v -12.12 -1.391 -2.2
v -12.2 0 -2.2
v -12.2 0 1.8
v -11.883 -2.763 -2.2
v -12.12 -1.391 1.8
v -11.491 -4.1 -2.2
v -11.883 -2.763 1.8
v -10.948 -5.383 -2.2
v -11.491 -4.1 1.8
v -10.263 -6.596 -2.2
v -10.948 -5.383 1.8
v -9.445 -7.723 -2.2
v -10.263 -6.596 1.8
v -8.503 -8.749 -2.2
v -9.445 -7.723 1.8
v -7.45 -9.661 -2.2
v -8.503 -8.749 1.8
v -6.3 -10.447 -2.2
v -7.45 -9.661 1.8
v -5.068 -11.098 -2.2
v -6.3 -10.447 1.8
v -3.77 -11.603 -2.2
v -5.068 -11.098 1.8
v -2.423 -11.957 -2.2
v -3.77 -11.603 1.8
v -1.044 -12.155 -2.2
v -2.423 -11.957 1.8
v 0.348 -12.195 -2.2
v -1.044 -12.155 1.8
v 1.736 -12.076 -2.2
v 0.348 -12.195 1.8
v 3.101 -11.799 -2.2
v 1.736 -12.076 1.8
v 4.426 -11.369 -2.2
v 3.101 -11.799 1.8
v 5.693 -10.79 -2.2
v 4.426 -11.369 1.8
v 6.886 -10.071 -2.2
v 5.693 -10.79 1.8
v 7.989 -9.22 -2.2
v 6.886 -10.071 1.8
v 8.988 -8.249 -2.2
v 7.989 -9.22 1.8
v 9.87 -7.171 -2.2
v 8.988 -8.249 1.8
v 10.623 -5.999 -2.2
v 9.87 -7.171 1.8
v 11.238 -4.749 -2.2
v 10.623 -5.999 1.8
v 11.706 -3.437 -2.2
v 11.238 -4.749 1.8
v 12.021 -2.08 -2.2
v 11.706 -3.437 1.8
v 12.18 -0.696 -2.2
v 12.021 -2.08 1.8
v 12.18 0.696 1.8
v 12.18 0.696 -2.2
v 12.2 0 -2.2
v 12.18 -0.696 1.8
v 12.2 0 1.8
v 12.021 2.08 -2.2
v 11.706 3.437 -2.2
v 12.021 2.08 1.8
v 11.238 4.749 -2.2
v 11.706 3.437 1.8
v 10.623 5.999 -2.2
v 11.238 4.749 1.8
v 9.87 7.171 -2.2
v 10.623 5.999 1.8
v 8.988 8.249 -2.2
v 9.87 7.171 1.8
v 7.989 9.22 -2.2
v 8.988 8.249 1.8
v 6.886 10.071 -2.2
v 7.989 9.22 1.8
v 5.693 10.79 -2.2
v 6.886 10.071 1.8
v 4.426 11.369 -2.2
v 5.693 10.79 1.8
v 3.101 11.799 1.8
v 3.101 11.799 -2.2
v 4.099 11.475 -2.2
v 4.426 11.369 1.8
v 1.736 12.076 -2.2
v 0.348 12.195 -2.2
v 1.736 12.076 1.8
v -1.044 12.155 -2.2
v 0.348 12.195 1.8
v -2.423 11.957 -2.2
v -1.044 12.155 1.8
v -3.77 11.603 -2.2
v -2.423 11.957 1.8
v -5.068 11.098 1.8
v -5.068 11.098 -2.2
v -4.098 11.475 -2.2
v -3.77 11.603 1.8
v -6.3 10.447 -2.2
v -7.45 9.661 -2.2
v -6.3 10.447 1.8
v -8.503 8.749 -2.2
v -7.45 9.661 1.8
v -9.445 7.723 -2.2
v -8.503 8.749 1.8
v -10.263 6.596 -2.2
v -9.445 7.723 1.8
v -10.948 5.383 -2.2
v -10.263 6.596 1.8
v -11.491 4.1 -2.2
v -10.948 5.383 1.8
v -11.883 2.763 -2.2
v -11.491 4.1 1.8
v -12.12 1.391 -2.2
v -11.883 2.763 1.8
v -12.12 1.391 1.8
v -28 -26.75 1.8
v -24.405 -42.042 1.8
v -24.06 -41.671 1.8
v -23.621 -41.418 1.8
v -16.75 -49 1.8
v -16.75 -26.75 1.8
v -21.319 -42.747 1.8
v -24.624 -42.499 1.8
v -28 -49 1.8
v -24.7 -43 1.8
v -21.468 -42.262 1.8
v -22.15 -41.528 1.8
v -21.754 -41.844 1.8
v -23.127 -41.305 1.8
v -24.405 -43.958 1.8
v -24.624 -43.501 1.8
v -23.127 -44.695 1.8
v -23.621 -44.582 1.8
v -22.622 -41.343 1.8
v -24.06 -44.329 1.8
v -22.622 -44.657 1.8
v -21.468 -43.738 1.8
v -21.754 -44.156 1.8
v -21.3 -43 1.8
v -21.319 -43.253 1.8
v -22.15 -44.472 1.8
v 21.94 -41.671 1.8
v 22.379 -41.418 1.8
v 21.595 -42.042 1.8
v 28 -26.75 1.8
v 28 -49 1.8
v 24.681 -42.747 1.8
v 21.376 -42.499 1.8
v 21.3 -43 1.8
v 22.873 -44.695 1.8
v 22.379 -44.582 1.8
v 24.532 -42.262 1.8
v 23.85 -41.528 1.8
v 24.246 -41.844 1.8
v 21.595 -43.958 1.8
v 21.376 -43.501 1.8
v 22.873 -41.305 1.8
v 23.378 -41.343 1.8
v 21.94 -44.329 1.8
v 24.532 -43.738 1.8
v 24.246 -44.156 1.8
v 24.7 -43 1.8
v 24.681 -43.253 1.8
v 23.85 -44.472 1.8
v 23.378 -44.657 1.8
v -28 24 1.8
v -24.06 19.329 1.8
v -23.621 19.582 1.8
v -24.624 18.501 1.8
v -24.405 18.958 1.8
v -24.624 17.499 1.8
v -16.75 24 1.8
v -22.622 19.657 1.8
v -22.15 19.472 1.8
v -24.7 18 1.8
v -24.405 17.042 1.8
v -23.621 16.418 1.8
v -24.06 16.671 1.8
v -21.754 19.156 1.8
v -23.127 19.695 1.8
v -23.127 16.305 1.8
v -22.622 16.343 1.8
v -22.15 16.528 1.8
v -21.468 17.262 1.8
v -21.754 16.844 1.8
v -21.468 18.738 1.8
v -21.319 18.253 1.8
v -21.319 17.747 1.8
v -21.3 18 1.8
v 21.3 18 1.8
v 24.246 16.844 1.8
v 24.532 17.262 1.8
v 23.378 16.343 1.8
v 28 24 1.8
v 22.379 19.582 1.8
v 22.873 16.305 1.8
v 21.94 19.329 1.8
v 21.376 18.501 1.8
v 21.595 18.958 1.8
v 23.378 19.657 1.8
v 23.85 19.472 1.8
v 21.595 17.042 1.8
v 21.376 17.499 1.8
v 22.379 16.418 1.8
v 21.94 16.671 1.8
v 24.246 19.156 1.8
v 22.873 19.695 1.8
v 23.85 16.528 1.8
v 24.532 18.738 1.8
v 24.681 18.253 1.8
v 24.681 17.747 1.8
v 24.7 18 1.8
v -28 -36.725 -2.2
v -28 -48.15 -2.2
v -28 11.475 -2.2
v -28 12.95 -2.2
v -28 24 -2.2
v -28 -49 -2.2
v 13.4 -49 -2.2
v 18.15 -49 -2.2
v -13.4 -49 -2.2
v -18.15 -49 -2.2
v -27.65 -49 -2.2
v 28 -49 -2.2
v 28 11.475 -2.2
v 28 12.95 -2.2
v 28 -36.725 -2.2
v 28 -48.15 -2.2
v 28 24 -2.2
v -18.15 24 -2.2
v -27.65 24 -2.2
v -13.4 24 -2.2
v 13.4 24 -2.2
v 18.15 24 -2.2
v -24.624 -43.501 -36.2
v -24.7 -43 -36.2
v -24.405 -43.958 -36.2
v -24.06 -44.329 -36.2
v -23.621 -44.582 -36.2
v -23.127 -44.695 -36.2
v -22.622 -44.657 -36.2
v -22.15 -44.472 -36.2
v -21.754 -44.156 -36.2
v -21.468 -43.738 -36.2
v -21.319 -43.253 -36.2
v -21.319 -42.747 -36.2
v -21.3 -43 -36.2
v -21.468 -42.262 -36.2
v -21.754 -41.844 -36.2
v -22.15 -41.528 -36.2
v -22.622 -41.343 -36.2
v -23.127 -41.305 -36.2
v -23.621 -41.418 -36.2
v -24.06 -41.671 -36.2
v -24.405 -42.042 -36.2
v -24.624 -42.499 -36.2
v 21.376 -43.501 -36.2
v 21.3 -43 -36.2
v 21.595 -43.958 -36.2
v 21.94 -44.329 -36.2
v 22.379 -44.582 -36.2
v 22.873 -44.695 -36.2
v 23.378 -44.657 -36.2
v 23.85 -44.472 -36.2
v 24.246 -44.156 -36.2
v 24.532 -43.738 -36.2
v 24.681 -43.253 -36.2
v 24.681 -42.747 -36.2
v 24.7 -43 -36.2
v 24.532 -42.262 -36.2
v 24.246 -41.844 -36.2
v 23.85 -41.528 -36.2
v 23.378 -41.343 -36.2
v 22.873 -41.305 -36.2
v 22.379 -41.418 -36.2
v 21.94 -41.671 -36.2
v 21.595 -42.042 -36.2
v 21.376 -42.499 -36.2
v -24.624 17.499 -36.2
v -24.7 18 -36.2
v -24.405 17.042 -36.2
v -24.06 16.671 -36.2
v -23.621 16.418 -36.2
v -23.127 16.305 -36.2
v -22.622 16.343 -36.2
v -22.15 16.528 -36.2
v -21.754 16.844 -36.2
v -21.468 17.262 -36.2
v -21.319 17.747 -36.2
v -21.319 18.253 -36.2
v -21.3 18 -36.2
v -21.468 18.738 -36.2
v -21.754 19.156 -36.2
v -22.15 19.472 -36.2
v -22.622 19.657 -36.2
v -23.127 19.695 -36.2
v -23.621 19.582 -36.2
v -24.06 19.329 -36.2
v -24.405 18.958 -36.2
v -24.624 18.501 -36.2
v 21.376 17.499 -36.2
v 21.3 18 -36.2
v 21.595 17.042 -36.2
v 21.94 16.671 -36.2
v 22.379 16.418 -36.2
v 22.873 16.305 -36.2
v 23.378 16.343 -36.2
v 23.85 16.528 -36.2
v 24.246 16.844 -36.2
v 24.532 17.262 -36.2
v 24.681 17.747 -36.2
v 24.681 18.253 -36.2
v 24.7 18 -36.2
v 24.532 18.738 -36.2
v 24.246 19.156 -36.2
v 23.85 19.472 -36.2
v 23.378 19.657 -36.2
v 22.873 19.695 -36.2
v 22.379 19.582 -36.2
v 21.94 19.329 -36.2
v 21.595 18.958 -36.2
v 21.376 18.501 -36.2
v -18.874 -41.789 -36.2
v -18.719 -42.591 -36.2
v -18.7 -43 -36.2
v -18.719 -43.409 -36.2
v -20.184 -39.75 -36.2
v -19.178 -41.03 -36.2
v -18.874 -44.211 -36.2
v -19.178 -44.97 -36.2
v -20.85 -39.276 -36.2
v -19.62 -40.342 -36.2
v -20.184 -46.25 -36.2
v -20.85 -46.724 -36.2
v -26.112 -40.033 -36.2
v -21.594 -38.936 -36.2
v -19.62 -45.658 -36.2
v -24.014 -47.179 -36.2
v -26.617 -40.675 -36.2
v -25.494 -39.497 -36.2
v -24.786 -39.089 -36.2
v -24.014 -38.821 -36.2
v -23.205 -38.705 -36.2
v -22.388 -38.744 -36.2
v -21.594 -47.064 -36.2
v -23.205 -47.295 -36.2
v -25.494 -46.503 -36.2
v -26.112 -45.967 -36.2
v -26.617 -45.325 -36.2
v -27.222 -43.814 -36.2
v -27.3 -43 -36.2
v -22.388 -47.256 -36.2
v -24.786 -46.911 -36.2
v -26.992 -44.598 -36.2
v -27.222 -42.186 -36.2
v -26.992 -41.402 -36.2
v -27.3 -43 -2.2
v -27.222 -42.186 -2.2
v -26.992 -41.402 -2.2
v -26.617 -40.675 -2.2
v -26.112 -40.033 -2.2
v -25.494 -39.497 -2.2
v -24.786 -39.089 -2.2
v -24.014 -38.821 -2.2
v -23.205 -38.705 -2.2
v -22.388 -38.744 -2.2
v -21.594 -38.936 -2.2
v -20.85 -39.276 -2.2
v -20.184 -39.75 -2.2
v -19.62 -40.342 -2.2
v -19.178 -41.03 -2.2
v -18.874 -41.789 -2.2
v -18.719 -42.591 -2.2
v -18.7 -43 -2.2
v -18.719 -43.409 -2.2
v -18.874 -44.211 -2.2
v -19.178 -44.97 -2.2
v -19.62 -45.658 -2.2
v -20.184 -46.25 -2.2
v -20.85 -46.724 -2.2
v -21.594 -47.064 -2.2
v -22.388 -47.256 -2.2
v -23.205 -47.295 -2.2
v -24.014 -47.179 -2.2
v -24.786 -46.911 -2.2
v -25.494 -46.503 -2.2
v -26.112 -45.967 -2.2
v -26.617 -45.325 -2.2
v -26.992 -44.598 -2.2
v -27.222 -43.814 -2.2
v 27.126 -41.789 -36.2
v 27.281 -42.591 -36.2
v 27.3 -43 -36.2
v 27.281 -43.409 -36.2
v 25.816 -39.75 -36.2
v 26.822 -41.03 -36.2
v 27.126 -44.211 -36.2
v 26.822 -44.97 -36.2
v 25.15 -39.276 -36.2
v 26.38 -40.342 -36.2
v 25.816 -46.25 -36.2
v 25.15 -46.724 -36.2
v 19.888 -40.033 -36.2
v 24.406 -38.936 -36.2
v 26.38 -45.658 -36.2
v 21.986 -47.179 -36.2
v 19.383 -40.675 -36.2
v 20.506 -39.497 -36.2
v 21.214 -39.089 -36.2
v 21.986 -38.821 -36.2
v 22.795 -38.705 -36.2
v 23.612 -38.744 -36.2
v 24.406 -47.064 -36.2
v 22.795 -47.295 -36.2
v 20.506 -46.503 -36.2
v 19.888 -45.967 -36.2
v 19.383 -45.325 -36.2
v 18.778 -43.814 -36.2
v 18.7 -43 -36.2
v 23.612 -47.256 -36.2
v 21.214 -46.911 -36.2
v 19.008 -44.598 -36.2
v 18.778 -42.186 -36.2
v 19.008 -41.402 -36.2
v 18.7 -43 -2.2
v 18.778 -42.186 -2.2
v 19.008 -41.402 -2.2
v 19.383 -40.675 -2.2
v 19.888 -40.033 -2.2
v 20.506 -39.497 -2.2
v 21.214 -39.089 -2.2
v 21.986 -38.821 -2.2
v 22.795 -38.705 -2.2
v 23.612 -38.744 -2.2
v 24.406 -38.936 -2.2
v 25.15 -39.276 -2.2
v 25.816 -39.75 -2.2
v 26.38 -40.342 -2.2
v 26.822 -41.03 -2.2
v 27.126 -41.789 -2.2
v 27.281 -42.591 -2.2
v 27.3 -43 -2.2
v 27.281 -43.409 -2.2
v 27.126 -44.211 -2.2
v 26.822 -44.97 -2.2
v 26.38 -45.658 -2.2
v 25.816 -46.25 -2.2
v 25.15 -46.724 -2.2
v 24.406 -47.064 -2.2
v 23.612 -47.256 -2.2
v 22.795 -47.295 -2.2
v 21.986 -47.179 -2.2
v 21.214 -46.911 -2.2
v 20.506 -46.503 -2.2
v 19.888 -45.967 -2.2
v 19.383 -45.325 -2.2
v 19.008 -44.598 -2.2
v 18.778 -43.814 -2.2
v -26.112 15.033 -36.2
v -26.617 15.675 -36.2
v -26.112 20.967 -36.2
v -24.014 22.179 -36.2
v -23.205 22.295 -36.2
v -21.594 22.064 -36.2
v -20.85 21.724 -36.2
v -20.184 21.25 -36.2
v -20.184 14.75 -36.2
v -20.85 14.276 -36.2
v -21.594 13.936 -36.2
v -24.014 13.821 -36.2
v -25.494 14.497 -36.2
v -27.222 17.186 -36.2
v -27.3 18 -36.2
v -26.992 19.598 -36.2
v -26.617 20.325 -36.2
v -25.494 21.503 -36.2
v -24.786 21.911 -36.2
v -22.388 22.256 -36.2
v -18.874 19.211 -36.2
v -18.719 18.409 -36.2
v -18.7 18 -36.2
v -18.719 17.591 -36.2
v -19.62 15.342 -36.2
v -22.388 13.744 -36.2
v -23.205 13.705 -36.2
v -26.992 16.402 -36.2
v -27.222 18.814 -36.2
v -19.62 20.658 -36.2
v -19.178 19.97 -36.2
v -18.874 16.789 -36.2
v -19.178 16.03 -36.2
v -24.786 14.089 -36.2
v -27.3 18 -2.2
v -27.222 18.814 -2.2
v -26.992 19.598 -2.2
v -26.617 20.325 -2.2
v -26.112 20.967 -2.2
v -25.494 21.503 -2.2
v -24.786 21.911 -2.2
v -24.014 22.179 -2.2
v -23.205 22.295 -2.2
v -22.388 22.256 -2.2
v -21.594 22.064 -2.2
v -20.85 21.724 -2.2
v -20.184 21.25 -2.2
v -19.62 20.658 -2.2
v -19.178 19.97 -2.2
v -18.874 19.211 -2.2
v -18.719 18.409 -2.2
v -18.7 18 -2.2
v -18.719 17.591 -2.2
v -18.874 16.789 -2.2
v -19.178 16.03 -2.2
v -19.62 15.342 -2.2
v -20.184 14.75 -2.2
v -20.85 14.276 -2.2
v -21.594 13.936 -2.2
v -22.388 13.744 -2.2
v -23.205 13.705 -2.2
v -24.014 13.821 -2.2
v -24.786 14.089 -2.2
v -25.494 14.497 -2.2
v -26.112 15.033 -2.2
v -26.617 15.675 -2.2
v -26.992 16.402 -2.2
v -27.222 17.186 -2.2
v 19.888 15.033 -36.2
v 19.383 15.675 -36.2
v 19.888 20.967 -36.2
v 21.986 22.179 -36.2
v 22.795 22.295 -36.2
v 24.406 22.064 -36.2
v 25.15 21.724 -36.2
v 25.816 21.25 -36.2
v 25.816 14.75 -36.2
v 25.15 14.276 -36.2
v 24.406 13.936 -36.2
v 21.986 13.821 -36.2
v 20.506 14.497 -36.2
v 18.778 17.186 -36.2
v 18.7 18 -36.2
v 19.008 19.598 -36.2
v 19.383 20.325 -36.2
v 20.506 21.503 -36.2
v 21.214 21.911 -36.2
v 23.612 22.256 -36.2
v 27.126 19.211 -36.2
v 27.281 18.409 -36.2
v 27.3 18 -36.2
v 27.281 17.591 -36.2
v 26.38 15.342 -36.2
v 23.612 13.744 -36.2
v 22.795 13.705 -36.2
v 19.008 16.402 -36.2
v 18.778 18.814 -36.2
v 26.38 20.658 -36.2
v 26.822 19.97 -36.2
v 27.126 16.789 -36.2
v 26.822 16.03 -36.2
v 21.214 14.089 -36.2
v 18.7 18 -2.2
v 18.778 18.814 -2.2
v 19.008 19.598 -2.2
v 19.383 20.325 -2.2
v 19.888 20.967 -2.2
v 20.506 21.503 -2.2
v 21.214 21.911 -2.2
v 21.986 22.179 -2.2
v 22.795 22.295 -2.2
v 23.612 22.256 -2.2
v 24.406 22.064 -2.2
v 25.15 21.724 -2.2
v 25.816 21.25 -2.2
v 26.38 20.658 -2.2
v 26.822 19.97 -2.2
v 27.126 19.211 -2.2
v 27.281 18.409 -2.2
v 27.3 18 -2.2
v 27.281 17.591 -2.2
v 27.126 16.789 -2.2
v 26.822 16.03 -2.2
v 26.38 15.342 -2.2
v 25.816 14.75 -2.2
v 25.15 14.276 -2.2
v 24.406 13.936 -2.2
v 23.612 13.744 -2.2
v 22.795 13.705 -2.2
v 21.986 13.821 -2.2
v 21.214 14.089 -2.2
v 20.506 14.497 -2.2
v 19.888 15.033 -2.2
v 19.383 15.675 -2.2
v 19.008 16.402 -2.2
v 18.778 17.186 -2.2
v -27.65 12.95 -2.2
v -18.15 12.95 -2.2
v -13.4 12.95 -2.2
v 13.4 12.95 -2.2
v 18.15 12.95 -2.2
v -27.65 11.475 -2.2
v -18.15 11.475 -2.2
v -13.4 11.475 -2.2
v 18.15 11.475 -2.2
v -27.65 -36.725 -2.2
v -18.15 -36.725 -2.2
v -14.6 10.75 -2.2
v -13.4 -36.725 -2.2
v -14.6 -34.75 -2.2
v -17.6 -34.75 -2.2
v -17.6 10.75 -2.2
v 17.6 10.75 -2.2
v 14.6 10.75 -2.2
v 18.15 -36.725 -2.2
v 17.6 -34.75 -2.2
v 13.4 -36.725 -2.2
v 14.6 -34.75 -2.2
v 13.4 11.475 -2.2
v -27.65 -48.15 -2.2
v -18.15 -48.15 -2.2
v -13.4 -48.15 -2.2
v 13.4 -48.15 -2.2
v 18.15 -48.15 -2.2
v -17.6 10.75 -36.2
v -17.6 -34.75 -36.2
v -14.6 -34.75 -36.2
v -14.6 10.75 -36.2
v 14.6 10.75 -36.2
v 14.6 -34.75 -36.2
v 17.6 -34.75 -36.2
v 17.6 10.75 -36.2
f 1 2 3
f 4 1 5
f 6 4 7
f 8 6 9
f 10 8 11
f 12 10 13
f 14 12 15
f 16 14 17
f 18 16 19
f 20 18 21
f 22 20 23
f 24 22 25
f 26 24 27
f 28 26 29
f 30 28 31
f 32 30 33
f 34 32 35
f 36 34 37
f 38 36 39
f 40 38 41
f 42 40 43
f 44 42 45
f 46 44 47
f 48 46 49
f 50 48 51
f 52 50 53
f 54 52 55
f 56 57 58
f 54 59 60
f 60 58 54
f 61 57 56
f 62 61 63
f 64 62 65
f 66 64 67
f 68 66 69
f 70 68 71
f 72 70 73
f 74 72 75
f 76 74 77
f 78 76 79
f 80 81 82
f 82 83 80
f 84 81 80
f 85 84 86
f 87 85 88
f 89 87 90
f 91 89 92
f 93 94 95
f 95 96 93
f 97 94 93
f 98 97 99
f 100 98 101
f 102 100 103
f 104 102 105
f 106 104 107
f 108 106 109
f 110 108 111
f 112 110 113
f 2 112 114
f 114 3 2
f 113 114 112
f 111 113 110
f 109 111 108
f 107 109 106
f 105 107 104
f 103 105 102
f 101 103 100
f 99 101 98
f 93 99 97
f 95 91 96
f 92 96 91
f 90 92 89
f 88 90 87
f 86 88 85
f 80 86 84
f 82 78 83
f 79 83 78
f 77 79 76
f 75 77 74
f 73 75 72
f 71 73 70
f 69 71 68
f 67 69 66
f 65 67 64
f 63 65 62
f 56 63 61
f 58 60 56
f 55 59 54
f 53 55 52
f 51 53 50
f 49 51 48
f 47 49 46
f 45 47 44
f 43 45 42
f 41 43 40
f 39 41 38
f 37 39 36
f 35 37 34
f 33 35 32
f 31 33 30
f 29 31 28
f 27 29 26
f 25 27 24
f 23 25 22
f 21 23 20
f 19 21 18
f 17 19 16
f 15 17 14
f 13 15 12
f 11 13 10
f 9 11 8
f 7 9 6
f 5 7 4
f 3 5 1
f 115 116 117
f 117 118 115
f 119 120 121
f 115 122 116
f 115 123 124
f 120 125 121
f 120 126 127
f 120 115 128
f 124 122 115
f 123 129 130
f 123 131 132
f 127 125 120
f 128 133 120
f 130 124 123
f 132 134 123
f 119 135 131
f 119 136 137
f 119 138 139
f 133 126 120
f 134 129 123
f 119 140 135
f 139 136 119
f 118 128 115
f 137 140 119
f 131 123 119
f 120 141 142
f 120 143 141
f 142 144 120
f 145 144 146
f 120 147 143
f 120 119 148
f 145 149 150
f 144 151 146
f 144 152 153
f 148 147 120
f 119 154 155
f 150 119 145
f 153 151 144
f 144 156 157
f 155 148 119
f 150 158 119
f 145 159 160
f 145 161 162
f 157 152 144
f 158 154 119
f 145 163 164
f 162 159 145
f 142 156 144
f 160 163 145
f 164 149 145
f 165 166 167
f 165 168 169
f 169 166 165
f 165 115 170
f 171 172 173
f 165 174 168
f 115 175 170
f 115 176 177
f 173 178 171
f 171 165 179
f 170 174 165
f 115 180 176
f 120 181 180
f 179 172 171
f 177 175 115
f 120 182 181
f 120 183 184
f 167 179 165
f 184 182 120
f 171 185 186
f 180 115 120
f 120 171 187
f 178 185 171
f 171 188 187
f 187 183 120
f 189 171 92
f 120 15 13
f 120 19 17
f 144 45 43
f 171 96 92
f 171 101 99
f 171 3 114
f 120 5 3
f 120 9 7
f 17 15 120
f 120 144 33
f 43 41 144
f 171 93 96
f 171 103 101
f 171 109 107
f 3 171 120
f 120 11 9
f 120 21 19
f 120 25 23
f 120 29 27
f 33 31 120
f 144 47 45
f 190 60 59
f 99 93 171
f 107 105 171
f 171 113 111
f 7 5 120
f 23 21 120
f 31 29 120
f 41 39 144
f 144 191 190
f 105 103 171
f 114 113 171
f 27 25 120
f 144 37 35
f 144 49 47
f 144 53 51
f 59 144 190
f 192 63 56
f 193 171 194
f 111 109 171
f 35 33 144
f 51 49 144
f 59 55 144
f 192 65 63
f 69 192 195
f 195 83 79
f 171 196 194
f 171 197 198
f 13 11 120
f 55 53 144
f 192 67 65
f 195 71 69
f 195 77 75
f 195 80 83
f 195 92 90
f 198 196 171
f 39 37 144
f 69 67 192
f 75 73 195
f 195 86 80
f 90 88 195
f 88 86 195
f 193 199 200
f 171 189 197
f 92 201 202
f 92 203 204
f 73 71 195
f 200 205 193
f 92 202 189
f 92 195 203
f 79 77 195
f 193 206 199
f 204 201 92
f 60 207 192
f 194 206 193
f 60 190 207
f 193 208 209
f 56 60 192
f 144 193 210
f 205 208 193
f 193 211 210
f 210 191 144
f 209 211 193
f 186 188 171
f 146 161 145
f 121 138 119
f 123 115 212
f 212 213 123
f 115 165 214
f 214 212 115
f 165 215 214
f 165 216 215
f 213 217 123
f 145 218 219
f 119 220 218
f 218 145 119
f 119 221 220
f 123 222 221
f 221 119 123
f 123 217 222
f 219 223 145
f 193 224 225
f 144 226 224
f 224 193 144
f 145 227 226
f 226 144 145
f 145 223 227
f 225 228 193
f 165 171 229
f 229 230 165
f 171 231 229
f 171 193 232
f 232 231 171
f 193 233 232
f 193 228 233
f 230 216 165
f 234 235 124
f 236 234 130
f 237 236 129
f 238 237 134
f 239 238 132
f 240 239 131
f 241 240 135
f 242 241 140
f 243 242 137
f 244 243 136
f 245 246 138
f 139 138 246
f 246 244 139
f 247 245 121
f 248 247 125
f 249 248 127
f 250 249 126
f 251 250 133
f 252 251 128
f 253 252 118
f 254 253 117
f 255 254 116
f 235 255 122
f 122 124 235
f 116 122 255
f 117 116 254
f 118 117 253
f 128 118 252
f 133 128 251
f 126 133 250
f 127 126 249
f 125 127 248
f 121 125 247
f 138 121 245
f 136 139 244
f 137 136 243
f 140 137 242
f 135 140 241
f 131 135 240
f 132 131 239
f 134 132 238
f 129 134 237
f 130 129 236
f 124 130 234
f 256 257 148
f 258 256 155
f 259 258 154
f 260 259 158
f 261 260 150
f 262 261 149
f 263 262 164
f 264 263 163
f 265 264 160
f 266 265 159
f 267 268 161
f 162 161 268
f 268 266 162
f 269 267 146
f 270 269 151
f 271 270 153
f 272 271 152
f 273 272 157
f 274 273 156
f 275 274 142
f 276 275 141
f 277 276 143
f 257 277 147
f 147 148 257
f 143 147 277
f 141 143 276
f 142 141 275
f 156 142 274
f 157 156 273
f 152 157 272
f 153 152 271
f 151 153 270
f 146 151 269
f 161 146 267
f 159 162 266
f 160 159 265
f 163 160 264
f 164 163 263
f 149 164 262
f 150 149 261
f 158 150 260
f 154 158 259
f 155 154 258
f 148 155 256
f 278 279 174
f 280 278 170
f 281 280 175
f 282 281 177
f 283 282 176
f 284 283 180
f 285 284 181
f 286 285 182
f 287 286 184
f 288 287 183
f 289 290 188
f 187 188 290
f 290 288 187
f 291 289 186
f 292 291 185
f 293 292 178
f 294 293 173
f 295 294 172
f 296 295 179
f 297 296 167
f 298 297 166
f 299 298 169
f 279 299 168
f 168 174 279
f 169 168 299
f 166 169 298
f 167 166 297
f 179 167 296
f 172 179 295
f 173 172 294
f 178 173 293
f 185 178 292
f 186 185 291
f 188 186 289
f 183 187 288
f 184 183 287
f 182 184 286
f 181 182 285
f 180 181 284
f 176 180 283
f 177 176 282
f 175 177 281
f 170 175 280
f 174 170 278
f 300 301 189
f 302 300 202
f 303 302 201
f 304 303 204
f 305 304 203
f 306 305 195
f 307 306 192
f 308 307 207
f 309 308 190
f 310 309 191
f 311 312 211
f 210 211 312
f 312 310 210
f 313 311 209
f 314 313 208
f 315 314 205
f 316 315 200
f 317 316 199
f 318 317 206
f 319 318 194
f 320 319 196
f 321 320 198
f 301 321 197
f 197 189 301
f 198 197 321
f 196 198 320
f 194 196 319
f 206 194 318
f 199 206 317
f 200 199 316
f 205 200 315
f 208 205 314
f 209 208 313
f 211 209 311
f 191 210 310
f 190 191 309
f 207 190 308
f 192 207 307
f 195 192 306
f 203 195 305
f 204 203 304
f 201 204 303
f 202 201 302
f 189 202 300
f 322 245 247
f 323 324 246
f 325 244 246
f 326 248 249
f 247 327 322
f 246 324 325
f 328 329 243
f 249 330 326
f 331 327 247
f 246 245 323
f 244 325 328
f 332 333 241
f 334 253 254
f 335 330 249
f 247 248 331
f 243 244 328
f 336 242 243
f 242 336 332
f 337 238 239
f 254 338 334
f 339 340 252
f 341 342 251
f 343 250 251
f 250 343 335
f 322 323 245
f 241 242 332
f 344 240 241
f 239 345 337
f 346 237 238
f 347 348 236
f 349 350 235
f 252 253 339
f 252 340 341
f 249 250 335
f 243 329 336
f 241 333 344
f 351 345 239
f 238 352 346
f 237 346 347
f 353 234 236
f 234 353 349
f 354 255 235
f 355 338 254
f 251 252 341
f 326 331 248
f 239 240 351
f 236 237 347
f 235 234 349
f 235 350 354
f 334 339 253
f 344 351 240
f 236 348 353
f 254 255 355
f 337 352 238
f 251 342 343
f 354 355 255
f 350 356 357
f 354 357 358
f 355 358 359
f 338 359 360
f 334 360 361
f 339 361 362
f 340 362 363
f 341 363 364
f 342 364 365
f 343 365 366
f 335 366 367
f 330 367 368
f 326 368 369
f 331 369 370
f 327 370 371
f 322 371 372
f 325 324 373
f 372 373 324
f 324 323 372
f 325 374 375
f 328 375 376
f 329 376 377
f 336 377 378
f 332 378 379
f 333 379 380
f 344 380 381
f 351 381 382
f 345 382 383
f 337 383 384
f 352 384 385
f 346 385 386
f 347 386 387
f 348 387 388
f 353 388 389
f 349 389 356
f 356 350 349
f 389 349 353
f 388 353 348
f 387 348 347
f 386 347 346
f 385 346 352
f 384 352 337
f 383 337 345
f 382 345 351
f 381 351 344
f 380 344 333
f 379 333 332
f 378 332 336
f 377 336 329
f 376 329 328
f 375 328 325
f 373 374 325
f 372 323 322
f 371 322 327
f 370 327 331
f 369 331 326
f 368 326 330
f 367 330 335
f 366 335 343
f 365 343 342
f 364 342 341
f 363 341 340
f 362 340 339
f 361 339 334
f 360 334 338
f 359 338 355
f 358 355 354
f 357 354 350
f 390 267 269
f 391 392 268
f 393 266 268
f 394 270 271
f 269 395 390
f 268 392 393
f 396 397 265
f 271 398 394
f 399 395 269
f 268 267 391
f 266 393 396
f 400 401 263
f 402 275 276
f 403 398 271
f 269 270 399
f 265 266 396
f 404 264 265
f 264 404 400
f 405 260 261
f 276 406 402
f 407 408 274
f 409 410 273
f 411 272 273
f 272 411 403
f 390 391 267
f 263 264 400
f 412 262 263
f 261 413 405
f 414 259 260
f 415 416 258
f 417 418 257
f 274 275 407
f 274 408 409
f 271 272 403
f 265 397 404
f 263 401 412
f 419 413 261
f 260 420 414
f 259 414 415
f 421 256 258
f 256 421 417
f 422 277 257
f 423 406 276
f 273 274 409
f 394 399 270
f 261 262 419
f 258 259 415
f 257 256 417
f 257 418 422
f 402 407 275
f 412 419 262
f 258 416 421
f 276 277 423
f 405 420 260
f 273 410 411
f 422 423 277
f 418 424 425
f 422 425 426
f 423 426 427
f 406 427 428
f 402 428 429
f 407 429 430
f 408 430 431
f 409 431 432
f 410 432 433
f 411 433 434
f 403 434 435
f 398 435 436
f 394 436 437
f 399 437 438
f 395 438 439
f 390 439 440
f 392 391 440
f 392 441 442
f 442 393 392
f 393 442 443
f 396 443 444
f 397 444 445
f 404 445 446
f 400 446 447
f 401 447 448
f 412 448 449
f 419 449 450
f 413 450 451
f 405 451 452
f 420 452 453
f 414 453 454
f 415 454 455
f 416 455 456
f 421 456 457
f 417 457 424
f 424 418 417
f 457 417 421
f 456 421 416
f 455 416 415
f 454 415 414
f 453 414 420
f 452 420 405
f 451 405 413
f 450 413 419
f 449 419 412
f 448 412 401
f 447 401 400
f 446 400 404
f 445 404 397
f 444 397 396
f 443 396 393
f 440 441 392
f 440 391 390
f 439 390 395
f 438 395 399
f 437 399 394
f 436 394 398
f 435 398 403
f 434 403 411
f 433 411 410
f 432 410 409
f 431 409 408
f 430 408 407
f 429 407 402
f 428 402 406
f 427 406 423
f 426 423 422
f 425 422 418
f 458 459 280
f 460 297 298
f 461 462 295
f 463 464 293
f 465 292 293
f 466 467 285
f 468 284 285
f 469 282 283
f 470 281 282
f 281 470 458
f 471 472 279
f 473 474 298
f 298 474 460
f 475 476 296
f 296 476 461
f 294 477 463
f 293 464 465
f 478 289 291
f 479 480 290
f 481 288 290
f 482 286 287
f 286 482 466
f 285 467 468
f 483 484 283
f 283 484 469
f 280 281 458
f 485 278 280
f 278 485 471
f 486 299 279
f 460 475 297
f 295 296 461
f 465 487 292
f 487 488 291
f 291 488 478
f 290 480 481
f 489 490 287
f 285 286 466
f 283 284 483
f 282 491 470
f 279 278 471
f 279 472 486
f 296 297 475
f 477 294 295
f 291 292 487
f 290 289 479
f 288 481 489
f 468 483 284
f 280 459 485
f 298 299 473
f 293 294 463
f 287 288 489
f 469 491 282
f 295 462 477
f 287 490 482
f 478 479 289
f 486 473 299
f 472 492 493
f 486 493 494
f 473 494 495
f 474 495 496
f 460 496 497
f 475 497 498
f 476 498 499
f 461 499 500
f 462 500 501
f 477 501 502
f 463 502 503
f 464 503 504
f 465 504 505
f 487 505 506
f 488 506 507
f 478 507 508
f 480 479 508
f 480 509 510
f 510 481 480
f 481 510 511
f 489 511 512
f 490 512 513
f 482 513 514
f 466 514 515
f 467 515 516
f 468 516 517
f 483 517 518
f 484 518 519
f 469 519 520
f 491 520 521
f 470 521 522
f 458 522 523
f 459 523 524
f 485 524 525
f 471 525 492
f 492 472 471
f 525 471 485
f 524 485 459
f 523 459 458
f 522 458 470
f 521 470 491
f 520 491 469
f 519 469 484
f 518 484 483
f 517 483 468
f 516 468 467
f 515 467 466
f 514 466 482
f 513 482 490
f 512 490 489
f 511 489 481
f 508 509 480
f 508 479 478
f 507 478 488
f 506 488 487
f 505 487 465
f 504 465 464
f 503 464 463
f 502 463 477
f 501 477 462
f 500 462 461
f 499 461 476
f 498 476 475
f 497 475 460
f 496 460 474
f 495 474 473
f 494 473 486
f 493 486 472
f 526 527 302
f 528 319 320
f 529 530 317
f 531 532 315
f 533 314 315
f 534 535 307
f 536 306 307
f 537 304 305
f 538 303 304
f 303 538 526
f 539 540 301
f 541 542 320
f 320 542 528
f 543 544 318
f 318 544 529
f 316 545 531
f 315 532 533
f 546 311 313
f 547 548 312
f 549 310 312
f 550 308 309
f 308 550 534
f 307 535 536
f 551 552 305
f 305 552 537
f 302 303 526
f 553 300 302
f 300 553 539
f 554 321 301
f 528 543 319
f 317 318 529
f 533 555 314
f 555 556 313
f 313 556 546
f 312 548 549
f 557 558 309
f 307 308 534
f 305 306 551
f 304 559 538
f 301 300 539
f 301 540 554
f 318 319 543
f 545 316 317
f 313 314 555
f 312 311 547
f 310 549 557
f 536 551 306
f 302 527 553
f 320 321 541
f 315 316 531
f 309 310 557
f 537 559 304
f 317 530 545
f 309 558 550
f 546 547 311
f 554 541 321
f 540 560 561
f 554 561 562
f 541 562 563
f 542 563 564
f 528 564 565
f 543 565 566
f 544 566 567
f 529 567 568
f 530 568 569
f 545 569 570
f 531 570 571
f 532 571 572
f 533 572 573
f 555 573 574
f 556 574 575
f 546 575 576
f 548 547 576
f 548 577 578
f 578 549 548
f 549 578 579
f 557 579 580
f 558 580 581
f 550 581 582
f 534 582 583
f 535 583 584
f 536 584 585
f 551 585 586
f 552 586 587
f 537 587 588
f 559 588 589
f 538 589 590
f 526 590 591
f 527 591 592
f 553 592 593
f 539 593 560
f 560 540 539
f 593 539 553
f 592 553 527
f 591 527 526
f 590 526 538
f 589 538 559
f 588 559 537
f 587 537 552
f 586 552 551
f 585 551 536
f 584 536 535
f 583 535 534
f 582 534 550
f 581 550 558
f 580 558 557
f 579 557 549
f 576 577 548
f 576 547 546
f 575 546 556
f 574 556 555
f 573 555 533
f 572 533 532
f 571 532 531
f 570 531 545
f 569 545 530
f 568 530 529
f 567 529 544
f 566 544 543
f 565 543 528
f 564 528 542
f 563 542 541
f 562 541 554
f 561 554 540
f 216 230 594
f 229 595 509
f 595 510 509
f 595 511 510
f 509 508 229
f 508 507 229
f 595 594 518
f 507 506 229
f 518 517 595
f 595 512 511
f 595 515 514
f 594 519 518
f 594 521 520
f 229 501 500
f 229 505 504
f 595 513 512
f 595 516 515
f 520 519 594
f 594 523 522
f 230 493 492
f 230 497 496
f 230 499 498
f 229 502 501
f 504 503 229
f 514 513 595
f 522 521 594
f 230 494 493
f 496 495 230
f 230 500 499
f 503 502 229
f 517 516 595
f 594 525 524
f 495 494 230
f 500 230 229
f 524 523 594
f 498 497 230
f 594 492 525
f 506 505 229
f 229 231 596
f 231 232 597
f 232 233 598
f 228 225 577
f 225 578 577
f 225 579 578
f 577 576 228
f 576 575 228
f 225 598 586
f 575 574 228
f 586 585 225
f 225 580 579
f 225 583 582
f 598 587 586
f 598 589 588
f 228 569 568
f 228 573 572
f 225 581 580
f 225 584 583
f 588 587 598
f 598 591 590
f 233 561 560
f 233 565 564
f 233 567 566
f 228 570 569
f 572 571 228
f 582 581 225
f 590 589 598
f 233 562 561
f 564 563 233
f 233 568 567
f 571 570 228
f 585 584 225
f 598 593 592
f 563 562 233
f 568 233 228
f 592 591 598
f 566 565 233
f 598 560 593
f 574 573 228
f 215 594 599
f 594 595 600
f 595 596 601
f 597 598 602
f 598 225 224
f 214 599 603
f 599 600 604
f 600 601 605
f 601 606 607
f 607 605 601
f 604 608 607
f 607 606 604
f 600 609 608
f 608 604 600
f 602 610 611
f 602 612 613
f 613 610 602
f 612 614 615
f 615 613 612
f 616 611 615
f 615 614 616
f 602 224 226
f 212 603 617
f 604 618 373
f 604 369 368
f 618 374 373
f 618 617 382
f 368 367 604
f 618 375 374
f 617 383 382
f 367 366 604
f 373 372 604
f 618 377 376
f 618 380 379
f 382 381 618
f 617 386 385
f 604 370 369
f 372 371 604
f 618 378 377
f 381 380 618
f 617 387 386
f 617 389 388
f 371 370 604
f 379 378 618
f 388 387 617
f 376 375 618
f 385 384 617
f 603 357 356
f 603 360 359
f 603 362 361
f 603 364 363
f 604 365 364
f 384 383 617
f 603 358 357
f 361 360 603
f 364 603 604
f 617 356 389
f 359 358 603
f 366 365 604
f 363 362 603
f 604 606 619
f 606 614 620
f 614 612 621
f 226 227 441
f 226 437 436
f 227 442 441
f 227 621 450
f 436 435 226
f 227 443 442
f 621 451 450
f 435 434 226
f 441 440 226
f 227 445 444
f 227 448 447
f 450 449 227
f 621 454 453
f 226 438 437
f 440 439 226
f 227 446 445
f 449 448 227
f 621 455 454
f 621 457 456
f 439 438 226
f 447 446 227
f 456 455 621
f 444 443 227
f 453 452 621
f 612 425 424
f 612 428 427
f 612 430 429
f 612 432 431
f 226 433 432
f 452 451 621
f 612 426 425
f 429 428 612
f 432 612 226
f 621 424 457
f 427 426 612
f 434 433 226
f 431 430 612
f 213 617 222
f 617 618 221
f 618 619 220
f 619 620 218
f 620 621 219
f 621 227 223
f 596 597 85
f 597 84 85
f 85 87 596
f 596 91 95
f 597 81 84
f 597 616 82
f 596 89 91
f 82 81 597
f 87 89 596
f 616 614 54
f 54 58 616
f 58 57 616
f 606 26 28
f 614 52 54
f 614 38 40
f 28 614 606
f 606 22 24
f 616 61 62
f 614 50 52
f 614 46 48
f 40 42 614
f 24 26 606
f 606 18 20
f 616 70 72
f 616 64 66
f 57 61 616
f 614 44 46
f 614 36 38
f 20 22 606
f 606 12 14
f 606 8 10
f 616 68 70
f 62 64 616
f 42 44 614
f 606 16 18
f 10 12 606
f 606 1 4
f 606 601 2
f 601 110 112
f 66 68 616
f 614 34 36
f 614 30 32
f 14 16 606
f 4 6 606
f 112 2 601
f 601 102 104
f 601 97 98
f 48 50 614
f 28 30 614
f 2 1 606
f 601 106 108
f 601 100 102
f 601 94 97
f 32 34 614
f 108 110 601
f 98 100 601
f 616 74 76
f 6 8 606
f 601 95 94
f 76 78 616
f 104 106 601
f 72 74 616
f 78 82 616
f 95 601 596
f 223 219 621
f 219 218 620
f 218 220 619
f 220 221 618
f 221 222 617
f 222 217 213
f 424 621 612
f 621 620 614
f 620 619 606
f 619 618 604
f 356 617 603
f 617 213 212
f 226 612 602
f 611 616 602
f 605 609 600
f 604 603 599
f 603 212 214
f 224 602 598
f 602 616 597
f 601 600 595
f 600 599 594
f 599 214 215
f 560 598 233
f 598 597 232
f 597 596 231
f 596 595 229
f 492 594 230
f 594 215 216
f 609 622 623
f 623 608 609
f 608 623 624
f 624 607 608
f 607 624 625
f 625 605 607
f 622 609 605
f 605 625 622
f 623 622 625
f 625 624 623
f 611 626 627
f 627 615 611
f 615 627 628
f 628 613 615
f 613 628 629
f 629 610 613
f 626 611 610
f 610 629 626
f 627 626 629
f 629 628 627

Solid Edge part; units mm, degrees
sketch "Sketch1" plane through (0, 0, -2.2) normal (0, 0, 1) x (1, 0, 0)
  line L0 (-28, -49) -> (28, -49)
  line L1 (28, -49) -> (28, 24)
  line L2 (28, 24) -> (-28, 24)
  line L3 (-28, 24) -> (-28, -49)
  circle A0 centre (0, 0) radius 12.2
  circle A1 centre (-23, -43) radius 1.7
  circle A2 centre (23, -43) radius 1.7
  circle A3 centre (-23, 18) radius 1.7
  circle A4 centre (23, 18) radius 1.7
extrude "ExtrudedProtrusion_1" add sketch "Sketch1" along normal blind 4
sketch "Sketch2" plane through (0, 0, -36.2) normal (0, 0, 1) x (1, 0, 0)
  circle A0 centre (-23, -43) radius 4.3
  circle A1 centre (-23, -43) radius 1.7
extrude "ExtrudedProtrusion_2" add sketch "Sketch2" along normal blind 34
sketch "Sketch3" plane through (0, 0, -36.2) normal (0, 0, 1) x (1, 0, 0)
  circle A0 centre (23, -43) radius 4.3
  circle A1 centre (23, -43) radius 1.7
extrude "ExtrudedProtrusion_3" add sketch "Sketch3" along normal blind 34
sketch "Sketch4" plane through (0, 0, -36.2) normal (0, 0, 1) x (1, 0, 0)
  circle A0 centre (-23, 18) radius 4.3
  circle A1 centre (-23, 18) radius 1.7
extrude "ExtrudedProtrusion_4" add sketch "Sketch4" along normal blind 34
sketch "Sketch5" plane through (0, 0, -36.2) normal (0, 0, 1) x (1, 0, 0)
  circle A0 centre (23, 18) radius 4.3
  circle A1 centre (23, 18) radius 1.7
extrude "ExtrudedProtrusion_5" add sketch "Sketch5" along normal blind 34
sketch "Sketch6" plane through (0, 0, -36.2) normal (0, 0, 1) x (1, 0, 0)
  line L0 (-17.6, -34.75) -> (-14.6, -34.75)
  line L1 (-14.6, -34.75) -> (-14.6, 10.75)
  line L2 (-14.6, 10.75) -> (-17.6, 10.75)
  line L3 (-17.6, 10.75) -> (-17.6, -34.75)
extrude "ExtrudedProtrusion_6" add sketch "Sketch6" along normal blind 34
sketch "Sketch7" plane through (0, 0, -36.2) normal (0, 0, 1) x (1, 0, 0)
  line L0 (14.6, -34.75) -> (17.6, -34.75)
  line L1 (17.6, -34.75) -> (17.6, 10.75)
  line L2 (17.6, 10.75) -> (14.6, 10.75)
  line L3 (14.6, 10.75) -> (14.6, -34.75)
extrude "ExtrudedProtrusion_7" add sketch "Sketch7" along normal blind 34
